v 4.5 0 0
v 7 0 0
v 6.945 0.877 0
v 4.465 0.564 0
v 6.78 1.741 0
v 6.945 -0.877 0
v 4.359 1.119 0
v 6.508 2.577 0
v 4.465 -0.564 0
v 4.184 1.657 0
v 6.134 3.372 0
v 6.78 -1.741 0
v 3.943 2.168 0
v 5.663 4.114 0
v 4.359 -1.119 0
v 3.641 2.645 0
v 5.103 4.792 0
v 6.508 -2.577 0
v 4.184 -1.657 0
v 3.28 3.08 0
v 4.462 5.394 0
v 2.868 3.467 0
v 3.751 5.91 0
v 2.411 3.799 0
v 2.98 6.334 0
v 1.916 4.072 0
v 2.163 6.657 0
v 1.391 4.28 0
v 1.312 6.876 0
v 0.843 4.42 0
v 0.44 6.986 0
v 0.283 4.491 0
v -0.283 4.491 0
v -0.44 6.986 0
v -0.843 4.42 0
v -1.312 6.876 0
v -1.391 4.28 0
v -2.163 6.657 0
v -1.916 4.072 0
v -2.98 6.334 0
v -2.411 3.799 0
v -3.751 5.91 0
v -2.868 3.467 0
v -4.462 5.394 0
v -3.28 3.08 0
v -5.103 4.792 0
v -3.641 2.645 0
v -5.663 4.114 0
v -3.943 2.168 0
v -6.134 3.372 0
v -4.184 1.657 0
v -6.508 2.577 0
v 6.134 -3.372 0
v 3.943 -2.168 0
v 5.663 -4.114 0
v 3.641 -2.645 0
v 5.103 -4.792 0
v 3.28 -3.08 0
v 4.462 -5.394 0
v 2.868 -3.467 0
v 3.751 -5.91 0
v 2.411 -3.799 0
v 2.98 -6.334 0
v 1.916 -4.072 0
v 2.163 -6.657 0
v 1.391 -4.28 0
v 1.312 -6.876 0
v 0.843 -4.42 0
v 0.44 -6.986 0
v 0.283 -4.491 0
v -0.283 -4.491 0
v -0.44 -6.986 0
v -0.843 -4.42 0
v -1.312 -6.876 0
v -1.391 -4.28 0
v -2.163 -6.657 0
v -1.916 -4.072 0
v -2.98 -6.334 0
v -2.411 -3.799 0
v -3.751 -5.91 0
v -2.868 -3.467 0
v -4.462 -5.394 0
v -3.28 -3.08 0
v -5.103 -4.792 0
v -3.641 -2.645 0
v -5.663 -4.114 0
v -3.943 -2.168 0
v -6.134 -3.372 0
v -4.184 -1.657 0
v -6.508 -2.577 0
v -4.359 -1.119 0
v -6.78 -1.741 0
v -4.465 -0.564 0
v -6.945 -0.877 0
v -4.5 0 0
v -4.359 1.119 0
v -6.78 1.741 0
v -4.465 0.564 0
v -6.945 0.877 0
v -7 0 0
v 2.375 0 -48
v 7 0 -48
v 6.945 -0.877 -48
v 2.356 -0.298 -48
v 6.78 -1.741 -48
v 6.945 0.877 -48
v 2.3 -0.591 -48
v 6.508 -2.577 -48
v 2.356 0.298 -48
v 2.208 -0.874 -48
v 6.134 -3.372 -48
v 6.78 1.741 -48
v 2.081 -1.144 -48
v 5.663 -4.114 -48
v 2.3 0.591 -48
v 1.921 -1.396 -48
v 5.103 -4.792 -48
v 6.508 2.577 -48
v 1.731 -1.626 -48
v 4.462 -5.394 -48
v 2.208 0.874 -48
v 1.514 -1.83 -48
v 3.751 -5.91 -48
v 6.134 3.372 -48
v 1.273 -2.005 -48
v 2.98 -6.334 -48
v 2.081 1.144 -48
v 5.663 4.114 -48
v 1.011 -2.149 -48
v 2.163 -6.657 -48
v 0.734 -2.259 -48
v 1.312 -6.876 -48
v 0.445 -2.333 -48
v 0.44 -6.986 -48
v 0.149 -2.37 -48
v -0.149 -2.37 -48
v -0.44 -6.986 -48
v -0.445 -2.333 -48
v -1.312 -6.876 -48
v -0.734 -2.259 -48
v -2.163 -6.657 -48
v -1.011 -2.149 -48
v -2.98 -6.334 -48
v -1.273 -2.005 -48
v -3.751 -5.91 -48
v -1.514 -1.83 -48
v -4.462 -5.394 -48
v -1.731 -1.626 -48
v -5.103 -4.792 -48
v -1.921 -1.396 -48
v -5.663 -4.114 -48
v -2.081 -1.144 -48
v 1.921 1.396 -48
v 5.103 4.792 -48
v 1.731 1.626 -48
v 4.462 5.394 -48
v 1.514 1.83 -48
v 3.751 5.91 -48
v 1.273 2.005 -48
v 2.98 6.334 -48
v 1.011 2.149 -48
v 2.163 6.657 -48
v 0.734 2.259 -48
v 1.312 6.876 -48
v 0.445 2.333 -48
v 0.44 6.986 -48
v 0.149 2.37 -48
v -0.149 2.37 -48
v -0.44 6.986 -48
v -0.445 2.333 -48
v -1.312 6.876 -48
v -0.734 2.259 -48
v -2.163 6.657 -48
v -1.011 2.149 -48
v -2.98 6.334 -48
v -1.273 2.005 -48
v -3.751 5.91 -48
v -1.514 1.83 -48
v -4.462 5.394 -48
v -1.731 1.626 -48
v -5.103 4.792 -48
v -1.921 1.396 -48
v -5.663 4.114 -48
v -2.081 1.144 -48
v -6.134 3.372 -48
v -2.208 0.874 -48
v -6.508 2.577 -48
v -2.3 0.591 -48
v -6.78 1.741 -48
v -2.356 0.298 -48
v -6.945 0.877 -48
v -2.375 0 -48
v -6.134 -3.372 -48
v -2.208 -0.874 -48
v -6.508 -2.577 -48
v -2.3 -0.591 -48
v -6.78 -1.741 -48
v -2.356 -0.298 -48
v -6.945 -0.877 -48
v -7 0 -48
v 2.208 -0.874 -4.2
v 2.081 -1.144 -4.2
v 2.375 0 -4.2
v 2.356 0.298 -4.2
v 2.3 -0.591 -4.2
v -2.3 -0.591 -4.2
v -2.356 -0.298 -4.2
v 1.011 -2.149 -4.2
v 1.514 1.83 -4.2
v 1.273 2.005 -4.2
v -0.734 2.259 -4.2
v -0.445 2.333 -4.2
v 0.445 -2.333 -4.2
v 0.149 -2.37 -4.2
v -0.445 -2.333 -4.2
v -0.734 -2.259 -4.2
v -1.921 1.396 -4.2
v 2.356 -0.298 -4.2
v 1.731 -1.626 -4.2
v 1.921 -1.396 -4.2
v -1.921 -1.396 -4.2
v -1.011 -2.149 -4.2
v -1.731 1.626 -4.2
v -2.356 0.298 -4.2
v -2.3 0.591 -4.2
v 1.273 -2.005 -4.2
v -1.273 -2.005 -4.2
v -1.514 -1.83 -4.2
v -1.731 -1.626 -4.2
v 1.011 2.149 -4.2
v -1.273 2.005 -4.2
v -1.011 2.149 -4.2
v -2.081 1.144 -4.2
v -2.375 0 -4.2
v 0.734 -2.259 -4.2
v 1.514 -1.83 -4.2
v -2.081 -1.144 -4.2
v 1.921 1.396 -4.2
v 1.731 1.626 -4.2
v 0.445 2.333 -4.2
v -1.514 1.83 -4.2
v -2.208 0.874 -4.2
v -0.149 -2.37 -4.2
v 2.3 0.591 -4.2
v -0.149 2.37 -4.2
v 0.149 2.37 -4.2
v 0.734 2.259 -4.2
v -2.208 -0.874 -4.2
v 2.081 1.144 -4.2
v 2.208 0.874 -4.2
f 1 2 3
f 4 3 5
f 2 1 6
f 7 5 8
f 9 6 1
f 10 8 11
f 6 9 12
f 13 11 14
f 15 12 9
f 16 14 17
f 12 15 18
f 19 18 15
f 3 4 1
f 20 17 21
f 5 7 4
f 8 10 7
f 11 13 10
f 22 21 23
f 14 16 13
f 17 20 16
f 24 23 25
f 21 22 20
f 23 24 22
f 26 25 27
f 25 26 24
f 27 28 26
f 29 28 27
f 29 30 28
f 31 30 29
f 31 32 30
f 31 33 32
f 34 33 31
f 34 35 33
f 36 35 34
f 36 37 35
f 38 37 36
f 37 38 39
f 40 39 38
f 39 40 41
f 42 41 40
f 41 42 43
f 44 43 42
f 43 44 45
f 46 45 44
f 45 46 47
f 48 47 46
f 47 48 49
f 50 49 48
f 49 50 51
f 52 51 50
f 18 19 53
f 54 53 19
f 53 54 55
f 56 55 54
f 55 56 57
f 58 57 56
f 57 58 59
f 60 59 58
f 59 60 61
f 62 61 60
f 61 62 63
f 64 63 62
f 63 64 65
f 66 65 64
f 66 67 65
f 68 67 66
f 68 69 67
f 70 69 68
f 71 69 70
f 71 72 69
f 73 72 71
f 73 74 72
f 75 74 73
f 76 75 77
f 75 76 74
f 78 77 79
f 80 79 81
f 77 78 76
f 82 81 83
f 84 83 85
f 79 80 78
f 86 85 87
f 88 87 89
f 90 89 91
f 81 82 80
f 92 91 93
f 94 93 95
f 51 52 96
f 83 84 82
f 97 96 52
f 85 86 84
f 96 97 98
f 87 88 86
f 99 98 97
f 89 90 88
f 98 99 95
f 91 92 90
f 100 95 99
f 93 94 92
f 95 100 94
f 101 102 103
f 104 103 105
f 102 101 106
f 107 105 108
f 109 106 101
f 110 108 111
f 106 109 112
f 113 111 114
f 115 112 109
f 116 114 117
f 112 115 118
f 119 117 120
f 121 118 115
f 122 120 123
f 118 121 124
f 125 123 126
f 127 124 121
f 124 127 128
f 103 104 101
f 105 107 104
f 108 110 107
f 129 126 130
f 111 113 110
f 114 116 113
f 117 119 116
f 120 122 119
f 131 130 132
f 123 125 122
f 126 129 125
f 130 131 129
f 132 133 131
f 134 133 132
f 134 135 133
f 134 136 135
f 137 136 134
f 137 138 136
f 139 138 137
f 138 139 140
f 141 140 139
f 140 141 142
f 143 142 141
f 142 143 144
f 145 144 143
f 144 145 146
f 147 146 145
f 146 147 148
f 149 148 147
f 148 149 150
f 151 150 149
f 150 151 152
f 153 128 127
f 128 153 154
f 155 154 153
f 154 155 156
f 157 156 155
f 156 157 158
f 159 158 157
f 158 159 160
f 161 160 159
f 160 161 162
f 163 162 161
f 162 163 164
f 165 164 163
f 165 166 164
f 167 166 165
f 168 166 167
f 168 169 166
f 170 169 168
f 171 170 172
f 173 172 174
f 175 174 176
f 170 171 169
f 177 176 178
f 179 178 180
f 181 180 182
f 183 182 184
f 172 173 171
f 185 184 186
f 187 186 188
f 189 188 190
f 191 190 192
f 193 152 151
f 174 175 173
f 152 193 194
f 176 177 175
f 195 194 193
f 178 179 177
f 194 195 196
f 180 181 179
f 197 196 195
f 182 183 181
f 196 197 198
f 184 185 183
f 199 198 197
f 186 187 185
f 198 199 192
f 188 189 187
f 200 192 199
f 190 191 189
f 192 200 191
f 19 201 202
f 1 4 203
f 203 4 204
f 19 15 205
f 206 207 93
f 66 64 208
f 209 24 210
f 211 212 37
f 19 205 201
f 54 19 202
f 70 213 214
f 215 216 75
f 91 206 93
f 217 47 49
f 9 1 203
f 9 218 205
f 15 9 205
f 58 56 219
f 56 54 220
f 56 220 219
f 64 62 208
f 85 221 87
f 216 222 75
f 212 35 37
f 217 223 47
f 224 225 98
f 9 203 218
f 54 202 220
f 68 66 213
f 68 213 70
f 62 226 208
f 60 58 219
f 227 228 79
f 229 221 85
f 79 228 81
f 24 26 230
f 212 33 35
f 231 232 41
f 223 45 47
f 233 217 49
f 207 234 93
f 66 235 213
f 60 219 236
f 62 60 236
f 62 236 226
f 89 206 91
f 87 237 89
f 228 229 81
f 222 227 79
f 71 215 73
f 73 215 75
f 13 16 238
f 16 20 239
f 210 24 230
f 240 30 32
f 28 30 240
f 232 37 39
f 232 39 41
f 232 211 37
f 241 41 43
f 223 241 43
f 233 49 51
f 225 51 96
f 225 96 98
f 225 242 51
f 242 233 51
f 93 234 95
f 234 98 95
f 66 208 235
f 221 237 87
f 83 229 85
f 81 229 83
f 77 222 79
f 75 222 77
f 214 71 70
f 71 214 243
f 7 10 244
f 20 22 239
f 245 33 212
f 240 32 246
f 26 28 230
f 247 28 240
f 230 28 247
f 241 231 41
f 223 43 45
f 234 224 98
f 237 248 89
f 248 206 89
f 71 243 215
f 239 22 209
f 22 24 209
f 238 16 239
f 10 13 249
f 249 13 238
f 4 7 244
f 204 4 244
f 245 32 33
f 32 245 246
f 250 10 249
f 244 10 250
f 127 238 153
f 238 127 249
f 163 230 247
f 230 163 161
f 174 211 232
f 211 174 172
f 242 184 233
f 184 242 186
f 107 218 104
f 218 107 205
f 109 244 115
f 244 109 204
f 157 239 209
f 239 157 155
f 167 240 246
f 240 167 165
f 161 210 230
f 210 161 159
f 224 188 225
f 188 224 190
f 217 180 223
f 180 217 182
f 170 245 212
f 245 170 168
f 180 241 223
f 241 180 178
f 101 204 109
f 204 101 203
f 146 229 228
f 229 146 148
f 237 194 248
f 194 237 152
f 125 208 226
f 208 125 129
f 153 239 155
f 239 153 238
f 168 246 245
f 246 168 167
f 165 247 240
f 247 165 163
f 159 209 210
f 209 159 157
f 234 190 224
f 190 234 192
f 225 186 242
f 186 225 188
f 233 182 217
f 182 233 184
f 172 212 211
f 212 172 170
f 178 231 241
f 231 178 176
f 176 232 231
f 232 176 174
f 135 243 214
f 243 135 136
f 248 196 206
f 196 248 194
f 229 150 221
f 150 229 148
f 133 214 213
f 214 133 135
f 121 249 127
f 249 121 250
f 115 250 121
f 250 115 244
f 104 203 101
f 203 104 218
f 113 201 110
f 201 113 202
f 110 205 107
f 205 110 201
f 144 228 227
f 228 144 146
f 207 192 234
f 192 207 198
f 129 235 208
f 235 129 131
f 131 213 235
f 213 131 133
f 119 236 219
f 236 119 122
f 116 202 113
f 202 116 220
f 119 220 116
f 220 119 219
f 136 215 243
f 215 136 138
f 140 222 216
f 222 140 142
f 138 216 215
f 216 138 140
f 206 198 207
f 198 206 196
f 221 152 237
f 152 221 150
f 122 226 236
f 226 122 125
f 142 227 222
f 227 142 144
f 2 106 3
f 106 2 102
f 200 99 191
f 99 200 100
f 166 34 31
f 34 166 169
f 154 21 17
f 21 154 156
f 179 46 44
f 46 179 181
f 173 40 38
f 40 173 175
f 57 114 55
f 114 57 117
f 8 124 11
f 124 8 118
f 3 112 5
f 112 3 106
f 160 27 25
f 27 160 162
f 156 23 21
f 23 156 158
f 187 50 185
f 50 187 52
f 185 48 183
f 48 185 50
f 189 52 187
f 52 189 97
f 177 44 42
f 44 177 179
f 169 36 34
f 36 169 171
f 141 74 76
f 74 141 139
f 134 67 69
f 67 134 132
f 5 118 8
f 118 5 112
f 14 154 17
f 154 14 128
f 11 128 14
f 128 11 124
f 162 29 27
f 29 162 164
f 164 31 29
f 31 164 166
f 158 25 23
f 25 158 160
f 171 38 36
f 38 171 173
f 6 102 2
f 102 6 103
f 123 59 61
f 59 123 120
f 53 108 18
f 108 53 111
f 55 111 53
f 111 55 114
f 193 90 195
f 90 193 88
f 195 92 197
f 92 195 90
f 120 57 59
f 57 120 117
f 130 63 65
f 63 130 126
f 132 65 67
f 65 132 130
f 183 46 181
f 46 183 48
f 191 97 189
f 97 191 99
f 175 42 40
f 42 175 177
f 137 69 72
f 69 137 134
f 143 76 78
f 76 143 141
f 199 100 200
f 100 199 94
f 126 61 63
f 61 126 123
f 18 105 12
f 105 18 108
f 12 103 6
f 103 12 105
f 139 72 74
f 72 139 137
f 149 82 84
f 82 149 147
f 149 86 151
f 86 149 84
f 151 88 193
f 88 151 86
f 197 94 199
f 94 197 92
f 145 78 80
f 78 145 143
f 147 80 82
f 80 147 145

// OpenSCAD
$fn = 50;


difference() {
	union() {
		translate(v = [0, 0, -48.0000000000]) {
			cylinder(h = 48, r = 7.0000000000);
		}
		cylinder(h = 0, r = 10.0000000000);
	}
	union() {
		translate(v = [0, 0, 0]) {
			rotate(a = [0, 0, 0]) {
				difference() {
					union() {
						#translate(v = [0, 0, -48.0000000000]) {
							cylinder(h = 48, r = 2.2500000000);
						}
						#translate(v = [0, 0, -4.2000000000]) {
							cylinder(h = 4.2000000000, r1 = 2.3750000000, r2 = 4.5000000000);
						}
						#translate(v = [0, 0, -48.0000000000]) {
							cylinder(h = 48, r = 2.3750000000);
						}
						#translate(v = [0, 0, -48.0000000000]) {
							cylinder(h = 48, r = 2.2500000000);
						}
					}
					union();
				}
			}
		}
	}
}
